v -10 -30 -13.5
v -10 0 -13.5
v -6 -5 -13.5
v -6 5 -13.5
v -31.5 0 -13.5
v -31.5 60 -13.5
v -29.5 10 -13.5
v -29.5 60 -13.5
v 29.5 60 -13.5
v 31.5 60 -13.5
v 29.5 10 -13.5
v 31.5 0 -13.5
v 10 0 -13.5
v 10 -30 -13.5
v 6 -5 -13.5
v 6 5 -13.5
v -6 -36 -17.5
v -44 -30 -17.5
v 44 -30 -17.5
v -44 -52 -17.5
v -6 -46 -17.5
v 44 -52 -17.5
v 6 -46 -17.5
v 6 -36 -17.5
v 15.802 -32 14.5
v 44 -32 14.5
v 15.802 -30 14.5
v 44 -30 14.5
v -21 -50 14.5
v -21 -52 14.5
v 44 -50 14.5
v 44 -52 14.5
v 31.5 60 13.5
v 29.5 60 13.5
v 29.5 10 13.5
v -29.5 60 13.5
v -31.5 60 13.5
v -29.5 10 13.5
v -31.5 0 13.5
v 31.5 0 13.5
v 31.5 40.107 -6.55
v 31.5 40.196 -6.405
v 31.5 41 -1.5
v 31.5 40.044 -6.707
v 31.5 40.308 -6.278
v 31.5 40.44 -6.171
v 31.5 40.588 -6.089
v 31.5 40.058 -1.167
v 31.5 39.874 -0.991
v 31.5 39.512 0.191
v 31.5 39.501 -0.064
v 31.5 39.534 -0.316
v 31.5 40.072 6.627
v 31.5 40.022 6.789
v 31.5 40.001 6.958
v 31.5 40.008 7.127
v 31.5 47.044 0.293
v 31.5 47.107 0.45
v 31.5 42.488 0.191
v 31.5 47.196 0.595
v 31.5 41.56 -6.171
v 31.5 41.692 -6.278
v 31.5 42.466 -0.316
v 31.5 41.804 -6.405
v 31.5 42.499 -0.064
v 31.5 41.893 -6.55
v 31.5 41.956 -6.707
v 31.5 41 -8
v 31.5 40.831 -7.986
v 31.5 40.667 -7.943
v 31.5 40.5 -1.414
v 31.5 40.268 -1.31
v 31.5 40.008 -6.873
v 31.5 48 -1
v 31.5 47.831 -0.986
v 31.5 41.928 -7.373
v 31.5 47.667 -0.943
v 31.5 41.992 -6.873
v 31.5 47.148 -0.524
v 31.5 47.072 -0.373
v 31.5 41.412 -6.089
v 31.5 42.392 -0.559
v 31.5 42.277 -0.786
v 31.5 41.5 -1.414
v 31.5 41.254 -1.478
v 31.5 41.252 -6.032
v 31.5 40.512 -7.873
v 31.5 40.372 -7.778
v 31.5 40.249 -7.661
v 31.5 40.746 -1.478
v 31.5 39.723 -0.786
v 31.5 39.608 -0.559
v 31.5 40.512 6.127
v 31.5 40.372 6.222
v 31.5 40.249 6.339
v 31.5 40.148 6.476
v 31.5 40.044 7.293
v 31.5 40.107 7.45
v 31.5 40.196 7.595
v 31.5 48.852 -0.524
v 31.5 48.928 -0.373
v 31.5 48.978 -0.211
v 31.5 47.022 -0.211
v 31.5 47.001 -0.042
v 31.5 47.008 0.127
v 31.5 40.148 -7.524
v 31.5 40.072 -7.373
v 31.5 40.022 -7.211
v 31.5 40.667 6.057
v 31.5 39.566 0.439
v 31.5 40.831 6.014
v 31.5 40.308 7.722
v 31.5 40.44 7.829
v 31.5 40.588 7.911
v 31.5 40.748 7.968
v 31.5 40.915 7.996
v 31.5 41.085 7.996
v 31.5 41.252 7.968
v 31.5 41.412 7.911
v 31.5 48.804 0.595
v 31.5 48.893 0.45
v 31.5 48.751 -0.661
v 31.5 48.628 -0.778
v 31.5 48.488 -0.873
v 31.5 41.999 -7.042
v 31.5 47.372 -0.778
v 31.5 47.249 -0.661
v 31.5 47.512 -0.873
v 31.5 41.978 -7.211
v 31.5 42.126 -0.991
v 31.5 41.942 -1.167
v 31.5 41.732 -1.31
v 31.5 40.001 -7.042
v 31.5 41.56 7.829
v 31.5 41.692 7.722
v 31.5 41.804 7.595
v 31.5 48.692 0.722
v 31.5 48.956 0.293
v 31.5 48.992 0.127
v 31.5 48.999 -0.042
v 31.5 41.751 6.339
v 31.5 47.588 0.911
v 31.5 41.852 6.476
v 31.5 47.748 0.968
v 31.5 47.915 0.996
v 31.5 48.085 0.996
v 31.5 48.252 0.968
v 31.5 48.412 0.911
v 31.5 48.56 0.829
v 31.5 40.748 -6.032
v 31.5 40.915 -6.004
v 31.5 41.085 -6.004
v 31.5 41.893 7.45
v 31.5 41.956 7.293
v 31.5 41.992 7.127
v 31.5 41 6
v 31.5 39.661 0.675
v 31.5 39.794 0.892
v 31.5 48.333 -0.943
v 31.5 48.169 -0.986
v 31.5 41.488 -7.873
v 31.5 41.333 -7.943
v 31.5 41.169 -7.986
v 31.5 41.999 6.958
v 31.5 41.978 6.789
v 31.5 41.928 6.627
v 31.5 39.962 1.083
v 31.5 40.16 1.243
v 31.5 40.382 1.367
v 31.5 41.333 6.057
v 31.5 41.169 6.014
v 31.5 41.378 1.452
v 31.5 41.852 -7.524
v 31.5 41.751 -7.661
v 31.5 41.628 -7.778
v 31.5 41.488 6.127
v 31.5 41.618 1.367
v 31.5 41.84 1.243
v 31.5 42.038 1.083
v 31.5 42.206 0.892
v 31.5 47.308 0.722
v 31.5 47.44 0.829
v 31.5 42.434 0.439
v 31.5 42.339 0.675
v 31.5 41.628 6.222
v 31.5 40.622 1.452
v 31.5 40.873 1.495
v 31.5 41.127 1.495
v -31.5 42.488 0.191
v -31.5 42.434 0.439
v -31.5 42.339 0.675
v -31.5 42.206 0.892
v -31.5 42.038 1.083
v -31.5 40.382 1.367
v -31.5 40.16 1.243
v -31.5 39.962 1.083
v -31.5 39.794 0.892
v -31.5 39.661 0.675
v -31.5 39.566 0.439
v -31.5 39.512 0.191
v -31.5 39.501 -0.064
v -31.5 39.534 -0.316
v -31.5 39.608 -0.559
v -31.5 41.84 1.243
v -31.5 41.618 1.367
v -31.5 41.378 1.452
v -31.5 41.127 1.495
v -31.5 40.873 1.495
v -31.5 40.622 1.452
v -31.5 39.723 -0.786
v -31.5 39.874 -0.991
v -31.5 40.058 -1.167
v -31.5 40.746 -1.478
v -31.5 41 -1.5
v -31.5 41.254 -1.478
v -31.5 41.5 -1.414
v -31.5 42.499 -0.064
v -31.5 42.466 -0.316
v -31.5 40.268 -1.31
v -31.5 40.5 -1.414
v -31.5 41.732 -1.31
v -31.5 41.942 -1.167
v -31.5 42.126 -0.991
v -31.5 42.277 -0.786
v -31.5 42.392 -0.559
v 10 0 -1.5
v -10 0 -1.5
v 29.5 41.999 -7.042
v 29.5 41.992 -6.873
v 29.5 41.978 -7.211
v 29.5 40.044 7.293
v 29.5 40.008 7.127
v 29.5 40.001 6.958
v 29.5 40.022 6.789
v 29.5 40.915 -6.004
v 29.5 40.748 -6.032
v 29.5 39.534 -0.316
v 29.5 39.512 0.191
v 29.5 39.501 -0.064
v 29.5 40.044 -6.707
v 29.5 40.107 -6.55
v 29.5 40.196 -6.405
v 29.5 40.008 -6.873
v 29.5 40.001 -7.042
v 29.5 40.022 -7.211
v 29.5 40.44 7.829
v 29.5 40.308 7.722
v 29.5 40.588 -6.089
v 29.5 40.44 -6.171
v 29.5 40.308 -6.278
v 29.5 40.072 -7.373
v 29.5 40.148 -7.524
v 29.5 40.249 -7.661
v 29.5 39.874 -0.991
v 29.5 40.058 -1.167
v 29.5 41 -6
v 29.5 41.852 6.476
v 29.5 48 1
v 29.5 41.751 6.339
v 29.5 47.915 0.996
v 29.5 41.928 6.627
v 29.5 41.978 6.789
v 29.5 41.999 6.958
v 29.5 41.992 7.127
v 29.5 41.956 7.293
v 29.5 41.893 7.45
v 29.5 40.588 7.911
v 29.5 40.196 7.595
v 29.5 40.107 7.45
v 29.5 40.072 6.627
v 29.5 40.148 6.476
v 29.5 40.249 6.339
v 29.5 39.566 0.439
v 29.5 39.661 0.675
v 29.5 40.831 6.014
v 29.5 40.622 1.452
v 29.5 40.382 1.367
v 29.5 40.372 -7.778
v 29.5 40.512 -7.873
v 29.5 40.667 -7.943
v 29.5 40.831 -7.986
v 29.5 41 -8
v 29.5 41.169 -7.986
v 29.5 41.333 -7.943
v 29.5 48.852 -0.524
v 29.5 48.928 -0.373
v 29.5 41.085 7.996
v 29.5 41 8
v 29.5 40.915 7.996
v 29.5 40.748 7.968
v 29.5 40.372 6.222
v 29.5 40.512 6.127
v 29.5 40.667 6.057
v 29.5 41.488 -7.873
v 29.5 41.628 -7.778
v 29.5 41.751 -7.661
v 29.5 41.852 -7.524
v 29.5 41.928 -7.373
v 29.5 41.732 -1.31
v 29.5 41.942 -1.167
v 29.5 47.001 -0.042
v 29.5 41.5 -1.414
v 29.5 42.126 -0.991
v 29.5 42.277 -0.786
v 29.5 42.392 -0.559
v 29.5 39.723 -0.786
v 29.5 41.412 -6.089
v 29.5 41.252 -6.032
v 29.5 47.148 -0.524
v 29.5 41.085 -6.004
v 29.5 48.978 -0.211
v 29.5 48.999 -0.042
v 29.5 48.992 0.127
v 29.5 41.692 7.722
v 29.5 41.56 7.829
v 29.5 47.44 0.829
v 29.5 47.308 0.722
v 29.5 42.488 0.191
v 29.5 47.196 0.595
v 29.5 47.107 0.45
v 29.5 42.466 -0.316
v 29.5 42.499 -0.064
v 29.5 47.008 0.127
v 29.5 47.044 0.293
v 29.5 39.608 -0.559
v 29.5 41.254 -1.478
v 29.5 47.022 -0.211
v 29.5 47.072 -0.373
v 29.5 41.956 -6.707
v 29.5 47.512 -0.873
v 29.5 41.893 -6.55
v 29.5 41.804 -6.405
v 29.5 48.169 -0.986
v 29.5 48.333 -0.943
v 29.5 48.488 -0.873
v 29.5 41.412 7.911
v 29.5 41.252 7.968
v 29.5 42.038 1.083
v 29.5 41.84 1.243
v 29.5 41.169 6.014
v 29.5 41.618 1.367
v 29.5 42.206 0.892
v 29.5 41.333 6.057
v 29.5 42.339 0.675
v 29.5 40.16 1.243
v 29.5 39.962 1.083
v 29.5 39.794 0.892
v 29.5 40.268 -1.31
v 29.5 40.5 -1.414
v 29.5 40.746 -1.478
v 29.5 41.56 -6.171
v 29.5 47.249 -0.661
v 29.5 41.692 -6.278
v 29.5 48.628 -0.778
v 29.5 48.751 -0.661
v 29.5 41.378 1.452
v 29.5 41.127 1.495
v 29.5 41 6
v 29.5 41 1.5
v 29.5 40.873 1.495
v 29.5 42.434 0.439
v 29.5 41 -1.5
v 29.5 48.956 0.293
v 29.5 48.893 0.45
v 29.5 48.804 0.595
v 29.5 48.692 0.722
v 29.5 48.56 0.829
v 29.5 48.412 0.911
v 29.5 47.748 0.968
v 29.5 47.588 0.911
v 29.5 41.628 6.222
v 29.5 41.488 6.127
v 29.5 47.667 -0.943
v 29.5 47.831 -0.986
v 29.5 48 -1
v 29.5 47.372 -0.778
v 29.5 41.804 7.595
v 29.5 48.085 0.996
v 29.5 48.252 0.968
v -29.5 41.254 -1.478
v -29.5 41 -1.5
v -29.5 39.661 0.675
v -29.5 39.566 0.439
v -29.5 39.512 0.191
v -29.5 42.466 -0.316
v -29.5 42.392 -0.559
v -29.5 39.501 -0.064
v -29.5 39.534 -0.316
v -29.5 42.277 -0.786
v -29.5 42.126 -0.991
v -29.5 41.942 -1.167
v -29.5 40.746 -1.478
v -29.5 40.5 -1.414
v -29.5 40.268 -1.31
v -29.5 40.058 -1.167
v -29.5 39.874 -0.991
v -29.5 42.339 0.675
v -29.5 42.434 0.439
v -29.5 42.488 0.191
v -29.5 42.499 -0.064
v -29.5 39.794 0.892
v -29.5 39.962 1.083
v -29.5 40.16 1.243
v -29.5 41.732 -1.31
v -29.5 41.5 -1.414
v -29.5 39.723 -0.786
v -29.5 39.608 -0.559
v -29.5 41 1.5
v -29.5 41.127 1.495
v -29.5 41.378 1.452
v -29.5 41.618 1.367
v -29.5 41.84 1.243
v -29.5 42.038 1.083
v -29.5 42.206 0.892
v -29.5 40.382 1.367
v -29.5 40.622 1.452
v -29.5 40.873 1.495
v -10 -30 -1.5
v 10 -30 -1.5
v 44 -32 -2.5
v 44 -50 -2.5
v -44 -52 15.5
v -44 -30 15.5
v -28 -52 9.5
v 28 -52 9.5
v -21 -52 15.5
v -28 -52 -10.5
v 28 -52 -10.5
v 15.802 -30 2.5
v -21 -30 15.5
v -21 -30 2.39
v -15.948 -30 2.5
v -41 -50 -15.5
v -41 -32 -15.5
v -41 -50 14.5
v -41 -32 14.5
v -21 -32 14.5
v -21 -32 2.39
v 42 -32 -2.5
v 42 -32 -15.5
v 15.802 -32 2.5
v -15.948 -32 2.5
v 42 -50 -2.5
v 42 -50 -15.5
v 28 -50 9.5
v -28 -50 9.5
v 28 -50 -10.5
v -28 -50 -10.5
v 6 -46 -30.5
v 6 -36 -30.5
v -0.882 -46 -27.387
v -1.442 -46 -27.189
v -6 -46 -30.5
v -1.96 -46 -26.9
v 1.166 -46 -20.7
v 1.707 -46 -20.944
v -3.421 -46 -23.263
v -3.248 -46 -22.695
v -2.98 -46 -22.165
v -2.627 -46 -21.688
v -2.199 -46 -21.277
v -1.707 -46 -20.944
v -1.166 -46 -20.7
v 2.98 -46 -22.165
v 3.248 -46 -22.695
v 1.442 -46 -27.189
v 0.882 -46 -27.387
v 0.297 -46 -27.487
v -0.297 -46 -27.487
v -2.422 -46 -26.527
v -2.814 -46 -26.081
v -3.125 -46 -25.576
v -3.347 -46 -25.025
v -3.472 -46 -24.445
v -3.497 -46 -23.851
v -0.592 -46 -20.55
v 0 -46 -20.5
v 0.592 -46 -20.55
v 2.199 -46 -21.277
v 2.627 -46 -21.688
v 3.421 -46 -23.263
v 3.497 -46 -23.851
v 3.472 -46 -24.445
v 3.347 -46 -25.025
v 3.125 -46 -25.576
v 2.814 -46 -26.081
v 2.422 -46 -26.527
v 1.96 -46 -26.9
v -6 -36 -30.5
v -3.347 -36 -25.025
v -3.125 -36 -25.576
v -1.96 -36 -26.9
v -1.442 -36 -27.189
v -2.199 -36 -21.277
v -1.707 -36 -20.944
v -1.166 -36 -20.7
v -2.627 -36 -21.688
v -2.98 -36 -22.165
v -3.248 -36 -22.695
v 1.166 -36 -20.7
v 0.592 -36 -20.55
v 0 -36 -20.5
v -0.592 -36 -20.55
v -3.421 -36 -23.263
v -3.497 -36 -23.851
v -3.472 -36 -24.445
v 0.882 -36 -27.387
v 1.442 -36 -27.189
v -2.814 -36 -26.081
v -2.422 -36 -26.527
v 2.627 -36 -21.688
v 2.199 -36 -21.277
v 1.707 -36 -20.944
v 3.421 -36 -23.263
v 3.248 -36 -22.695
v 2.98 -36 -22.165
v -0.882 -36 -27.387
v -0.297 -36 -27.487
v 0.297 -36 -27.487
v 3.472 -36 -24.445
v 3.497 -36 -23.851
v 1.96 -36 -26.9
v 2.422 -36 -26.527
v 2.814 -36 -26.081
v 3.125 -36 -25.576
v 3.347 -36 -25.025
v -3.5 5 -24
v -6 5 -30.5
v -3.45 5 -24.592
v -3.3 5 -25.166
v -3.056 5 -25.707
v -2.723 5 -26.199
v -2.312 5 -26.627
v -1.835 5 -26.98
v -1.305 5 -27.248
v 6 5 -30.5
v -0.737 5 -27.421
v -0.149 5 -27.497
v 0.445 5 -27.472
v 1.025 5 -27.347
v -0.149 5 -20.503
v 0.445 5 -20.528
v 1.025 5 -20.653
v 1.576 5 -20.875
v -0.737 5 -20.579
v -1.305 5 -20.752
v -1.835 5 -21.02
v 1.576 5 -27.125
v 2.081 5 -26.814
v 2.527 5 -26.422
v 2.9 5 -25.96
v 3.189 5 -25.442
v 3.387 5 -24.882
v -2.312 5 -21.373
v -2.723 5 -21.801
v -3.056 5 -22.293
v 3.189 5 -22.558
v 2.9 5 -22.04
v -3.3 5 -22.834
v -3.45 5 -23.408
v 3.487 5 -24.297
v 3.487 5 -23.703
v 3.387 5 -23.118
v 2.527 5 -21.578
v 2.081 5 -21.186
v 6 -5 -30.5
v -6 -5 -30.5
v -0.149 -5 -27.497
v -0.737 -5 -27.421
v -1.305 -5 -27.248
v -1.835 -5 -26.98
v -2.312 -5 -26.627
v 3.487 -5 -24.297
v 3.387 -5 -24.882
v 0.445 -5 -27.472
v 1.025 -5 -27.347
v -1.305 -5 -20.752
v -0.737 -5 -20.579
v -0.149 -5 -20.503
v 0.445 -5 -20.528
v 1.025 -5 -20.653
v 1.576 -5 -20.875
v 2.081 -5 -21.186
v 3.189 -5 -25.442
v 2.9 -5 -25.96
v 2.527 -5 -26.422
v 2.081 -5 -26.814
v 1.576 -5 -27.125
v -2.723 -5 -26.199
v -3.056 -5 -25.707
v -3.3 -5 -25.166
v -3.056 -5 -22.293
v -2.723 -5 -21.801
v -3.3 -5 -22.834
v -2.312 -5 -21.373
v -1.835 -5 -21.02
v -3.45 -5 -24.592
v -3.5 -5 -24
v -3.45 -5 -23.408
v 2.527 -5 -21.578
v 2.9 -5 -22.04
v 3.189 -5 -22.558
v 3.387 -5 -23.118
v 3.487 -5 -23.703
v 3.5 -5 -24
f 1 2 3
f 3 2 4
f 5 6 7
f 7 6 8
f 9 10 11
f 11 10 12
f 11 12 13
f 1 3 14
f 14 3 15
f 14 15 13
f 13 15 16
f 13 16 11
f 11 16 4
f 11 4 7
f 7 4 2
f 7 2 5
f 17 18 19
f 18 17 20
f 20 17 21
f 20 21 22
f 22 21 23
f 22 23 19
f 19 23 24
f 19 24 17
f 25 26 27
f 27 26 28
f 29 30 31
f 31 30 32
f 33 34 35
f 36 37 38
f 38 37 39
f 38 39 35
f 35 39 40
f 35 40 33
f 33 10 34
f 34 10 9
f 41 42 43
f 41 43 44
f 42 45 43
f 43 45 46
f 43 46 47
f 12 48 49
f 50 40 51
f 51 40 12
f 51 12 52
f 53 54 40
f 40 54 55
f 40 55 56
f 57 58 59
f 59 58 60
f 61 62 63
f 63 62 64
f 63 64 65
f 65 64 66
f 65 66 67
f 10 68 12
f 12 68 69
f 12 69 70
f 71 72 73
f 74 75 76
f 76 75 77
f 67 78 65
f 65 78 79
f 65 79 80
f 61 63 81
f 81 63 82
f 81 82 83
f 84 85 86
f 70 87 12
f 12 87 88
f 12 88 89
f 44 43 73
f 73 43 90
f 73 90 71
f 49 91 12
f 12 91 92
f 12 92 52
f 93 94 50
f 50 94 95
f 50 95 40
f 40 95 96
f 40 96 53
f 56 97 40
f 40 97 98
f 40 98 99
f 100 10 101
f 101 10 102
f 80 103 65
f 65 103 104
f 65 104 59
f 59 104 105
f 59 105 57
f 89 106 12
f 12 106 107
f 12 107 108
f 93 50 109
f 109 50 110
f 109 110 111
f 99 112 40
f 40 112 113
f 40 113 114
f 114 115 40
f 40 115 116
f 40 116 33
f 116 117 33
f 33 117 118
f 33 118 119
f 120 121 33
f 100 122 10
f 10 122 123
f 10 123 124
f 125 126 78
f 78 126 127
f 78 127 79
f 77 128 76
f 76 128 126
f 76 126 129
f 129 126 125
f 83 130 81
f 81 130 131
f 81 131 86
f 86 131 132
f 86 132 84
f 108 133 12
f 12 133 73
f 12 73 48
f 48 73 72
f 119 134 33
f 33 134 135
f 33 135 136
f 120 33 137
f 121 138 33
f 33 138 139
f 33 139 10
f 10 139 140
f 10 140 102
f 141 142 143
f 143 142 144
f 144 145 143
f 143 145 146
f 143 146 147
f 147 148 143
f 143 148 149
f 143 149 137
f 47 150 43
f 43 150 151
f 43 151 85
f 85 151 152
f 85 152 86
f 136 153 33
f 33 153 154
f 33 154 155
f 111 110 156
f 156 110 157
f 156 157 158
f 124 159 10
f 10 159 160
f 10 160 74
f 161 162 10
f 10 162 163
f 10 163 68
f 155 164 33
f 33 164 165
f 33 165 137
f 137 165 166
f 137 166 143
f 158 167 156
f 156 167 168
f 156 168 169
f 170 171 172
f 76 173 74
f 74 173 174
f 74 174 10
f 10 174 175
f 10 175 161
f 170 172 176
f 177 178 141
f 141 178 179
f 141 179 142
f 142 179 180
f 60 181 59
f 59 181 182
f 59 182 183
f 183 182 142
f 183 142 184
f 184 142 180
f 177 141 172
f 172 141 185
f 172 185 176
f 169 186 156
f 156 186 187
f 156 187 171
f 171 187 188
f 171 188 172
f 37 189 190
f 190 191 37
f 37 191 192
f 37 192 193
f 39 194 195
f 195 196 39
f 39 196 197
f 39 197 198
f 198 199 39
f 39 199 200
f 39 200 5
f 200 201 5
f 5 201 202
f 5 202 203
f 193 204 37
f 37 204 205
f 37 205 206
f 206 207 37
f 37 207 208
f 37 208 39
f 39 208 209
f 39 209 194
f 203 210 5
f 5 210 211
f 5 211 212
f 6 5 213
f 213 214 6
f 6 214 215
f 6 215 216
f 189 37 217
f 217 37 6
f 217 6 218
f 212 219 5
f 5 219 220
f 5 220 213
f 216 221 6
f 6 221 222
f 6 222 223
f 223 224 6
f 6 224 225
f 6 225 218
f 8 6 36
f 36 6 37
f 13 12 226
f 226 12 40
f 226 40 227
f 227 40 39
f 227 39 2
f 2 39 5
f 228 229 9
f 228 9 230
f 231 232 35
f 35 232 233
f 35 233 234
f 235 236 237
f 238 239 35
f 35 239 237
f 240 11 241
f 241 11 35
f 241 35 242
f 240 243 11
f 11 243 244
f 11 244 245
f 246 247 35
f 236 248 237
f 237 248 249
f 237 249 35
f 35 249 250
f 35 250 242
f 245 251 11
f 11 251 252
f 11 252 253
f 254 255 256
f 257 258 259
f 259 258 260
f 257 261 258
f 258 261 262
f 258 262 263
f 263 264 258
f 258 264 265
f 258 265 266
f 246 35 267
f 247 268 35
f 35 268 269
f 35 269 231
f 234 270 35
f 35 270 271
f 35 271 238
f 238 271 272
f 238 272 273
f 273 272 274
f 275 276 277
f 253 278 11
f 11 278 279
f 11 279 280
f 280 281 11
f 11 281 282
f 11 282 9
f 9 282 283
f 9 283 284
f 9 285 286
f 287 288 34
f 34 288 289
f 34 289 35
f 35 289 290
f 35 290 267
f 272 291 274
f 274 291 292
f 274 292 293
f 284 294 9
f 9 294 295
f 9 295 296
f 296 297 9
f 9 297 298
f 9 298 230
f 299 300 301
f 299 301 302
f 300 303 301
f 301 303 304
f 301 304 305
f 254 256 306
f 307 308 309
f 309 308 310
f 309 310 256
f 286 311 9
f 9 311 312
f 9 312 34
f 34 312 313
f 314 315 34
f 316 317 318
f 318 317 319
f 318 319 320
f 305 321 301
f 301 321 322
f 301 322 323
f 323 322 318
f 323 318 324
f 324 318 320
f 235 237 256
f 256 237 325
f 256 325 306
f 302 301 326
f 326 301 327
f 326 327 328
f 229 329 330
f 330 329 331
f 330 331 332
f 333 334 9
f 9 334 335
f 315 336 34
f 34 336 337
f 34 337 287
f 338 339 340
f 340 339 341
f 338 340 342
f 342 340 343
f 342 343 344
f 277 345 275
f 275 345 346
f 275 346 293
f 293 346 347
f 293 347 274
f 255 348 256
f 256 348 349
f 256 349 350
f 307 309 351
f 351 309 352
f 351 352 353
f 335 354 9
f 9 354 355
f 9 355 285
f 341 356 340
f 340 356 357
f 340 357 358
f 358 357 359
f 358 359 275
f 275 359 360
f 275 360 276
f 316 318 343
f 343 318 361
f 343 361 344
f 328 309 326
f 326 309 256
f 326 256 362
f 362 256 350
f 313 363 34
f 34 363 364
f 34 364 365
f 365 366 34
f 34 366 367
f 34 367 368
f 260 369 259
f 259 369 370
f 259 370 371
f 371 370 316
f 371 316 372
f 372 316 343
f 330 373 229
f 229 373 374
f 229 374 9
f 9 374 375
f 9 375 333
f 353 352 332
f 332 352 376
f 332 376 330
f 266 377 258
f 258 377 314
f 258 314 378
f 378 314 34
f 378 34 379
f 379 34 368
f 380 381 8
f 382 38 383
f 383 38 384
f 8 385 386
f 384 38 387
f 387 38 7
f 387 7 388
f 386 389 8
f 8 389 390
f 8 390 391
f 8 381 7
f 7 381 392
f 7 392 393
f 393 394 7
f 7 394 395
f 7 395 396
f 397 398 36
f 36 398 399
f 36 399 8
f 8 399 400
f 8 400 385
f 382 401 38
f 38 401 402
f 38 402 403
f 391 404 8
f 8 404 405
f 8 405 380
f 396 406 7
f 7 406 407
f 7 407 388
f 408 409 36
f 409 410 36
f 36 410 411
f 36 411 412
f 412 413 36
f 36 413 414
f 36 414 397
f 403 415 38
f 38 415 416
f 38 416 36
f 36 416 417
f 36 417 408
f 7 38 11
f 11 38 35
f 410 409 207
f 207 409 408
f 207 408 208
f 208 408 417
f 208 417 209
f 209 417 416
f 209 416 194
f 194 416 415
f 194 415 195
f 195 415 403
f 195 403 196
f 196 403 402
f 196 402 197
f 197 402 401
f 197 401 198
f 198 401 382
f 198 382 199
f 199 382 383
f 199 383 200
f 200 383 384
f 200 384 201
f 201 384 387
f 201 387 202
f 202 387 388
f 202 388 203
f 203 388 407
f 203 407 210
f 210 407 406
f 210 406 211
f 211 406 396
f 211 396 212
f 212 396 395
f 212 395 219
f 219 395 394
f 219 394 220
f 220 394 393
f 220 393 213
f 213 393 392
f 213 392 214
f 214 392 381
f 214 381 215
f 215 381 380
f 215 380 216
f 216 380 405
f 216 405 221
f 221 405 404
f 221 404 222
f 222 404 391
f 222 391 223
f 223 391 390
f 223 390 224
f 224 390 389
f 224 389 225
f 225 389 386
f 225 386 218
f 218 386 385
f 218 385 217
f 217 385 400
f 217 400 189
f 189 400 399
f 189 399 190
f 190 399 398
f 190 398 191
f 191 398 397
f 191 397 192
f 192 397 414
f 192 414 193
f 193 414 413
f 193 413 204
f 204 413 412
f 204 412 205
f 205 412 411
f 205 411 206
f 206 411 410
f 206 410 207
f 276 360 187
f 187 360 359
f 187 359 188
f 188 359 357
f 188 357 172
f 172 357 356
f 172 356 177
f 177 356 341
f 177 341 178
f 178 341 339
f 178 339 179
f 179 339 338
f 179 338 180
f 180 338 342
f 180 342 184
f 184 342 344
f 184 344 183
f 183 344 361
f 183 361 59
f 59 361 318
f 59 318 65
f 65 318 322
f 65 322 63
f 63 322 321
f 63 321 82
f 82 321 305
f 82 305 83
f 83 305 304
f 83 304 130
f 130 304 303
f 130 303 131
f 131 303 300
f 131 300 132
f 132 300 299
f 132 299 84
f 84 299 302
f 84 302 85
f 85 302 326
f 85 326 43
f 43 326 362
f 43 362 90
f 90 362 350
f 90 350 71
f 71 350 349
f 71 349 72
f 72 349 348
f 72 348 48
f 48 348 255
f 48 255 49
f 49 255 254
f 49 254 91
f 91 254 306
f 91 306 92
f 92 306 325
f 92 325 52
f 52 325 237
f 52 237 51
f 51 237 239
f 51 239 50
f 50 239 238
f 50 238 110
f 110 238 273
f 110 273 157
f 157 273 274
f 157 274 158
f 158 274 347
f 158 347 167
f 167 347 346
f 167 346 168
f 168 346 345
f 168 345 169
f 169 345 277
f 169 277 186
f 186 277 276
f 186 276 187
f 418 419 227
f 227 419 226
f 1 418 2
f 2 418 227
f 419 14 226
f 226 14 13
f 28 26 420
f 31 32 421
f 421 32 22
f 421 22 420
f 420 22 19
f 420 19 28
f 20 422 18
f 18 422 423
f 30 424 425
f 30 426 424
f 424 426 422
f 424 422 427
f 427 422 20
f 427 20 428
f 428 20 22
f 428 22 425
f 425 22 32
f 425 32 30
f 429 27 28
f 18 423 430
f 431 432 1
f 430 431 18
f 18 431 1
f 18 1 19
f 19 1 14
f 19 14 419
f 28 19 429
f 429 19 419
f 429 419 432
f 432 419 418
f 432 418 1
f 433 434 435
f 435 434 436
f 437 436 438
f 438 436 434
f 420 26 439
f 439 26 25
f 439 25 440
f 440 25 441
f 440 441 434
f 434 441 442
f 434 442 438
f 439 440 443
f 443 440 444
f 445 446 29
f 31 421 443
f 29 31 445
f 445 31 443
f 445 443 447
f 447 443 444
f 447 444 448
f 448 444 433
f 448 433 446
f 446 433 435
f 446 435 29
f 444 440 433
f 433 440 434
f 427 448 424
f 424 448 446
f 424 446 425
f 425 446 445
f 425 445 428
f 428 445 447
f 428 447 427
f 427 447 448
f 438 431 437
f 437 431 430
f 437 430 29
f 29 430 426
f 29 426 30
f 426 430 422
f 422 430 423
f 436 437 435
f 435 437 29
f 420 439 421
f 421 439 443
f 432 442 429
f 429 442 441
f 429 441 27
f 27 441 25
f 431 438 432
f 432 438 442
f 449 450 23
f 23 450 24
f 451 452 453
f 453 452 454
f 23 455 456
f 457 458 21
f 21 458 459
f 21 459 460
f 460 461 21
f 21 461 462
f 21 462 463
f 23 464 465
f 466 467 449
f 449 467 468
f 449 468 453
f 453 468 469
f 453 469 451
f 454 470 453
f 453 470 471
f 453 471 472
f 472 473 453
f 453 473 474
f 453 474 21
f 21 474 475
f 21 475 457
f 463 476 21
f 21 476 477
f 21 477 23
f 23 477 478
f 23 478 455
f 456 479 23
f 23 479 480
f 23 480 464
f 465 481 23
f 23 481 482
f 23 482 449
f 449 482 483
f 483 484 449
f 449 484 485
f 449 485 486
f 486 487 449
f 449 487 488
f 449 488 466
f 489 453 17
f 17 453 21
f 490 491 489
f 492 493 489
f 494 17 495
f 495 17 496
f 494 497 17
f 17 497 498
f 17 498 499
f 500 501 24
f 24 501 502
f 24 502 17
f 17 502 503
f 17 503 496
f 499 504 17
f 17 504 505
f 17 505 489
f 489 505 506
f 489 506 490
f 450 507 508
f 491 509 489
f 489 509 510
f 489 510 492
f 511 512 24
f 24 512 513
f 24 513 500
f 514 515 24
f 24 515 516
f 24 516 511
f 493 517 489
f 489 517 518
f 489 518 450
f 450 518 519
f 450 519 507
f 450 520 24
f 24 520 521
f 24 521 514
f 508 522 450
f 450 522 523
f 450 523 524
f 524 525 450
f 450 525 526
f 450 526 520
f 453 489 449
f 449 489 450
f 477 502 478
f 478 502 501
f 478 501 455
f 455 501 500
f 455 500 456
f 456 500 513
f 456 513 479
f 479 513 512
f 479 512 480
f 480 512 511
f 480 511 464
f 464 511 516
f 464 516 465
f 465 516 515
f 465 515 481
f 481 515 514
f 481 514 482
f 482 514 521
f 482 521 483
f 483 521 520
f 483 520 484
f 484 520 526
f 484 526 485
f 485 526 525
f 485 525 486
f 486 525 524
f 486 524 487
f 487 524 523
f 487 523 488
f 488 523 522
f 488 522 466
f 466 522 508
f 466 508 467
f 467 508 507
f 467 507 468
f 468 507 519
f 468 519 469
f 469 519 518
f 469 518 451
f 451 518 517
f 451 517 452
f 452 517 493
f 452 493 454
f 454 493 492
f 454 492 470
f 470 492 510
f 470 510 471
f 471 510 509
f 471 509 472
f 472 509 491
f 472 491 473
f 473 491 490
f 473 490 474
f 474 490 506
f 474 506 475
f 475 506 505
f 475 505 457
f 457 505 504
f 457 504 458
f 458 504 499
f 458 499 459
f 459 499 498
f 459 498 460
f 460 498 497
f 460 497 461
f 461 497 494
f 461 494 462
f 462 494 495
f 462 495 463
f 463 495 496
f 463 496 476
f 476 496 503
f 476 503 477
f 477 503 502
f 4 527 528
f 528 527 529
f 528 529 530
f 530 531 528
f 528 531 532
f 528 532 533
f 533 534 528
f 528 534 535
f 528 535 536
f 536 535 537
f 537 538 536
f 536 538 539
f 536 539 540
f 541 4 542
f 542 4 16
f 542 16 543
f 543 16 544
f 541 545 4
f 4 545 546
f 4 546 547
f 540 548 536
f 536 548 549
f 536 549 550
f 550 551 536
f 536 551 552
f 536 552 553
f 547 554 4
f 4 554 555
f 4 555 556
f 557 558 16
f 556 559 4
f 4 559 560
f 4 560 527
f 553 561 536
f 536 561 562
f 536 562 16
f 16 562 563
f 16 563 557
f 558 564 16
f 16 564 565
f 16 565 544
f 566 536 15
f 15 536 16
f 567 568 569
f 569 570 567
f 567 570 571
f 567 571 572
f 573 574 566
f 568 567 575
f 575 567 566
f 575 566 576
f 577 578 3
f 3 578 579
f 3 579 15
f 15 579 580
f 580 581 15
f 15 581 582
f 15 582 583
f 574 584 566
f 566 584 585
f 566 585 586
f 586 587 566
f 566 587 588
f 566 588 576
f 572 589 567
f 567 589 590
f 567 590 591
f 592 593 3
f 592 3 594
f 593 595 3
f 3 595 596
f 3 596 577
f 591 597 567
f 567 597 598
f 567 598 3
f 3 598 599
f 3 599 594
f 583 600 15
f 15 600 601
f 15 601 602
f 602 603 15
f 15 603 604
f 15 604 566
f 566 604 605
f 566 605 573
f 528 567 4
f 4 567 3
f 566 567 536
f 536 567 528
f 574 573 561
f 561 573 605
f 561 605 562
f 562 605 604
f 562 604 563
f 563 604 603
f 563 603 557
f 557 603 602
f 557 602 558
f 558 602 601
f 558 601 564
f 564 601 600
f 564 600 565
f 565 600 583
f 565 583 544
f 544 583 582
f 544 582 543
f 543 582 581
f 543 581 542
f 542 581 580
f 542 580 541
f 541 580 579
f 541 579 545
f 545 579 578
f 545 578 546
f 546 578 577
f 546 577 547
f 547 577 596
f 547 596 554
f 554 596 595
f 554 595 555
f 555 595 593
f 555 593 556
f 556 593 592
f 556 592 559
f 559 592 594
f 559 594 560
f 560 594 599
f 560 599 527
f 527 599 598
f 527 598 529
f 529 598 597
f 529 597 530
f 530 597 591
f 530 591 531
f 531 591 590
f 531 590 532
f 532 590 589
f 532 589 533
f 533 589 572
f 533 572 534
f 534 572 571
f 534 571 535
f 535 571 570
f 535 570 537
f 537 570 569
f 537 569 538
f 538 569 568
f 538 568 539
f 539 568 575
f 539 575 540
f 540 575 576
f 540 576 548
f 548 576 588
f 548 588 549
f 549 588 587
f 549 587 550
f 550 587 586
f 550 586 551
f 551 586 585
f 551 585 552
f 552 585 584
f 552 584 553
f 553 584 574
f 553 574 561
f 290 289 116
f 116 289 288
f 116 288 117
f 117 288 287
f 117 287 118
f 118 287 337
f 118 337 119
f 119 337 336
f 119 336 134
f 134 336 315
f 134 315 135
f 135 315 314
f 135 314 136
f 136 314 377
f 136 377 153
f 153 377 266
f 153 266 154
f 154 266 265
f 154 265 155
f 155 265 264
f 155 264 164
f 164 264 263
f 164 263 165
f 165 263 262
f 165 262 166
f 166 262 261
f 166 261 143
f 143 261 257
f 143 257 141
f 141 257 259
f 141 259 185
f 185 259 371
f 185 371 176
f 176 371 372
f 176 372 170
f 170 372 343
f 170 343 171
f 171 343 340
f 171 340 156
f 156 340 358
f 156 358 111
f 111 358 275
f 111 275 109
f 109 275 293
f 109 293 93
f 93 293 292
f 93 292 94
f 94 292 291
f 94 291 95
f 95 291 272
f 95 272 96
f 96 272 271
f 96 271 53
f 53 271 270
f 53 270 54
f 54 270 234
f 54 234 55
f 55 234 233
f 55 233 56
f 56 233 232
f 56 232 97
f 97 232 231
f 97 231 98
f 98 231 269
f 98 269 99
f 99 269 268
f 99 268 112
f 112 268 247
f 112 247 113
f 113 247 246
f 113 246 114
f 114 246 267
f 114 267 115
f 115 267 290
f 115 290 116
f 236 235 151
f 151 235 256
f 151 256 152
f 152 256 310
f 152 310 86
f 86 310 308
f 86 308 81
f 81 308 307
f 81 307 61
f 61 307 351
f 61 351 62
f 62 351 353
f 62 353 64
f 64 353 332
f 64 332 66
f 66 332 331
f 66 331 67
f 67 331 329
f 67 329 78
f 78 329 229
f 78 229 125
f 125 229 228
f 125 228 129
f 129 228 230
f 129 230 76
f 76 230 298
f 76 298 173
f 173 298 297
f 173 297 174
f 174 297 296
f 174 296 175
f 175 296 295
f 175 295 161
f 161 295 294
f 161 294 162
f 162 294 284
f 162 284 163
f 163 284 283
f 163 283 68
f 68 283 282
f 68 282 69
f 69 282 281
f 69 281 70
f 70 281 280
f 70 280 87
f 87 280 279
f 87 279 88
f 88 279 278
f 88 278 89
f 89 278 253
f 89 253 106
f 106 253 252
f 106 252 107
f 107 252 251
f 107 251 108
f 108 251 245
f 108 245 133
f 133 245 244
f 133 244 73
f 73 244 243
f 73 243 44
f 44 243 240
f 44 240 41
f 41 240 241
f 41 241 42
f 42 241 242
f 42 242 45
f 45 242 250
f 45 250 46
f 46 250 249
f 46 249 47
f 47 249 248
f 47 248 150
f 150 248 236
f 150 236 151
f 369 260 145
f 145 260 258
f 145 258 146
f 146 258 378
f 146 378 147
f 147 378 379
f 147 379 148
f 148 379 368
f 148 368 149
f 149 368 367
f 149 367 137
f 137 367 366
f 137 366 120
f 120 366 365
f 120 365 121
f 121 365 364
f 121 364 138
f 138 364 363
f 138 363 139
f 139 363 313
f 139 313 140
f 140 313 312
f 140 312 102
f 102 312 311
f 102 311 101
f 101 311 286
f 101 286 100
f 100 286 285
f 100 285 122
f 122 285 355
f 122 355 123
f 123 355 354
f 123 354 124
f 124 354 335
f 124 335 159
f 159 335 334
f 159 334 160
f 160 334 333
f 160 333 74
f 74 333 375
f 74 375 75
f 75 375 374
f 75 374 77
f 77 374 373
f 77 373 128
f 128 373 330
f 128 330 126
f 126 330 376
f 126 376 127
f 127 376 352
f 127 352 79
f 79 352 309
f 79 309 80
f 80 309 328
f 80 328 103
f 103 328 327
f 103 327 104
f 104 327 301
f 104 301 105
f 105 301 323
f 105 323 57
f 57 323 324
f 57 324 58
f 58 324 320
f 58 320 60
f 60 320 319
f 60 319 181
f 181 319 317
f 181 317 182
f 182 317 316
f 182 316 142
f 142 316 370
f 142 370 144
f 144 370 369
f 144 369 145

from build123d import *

# Parameters (mm, degrees)
SKETCH1_W           = 63
SKETCH1_H           = 27
BOSS_EXTRUDE1_DEPTH = 60
SKETCH2_W           = 59
SKETCH2_H           = 27
CUT_EXTRUDE1_DEPTH  = 50
SKETCH3_R           = 1.5
CUT_EXTRUDE2_DEPTH  = 65
SKETCH5_W           = 20
SKETCH5_H           = 12
BOSS_EXTRUDE2_DEPTH = 30
SKETCH6_W           = 88
SKETCH6_H           = 32
BOSS_EXTRUDE3_DEPTH = 22
SKETCH7_W           = 83
SKETCH7_H           = 18
CUT_EXTRUDE3_DEPTH  = 30
SKETCH10_W          = 56
SKETCH10_H          = 20
CUT_EXTRUDE5_DEPTH  = 3
SKETCH11_W          = 23
SKETCH11_H          = 22
BOSS_EXTRUDE4_DEPTH = 1
SKETCH12_W          = 17
SKETCH12_H          = 18
CUT_EXTRUDE7_DEPTH  = 2.5
SKETCH13_W          = 31.74972829
SKETCH13_H          = 12
CUT_EXTRUDE9_DEPTH  = 2.5
CUT_EXTRUDE10_DEPTH = 2.5
SKETCH23_W          = 12
SKETCH23_H          = 10
BOSS_EXTRUDE7_DEPTH = 13
SKETCH25_R          = 3.5
CUT_EXTRUDE13_DEPTH = 13
SKETCH26_W          = 12
SKETCH26_H          = 10
BOSS_EXTRUDE8_DEPTH = 17
SKETCH27_R          = 3.5
CUT_EXTRUDE14_DEPTH = 17
SKETCH28_R          = 1
CUT_EXTRUDE15_DEPTH = 10


with BuildPart() as part:
    # Sketch1 → Boss-Extrude1 (new body)
    with BuildSketch(Plane(origin=(0, 0, 0), x_dir=(1, 0, 0), z_dir=(0, 1, 0))):
        Rectangle(SKETCH1_W, SKETCH1_H)
    extrude(amount=BOSS_EXTRUDE1_DEPTH)

    # Sketch2 → Cut-Extrude1 (cut)
    with BuildSketch(Plane(origin=(0, 60, 0), x_dir=(1, 0, 0), z_dir=(0, 1, 0))):
        Rectangle(SKETCH2_W, SKETCH2_H)
    extrude(amount=-CUT_EXTRUDE1_DEPTH, mode=Mode.SUBTRACT)

    # Sketch3 → Cut-Extrude2 (cut)
    with BuildSketch(Plane(origin=(31.5, 0, 0), x_dir=(0, 0, -1), z_dir=(1, 0, 0))):
        with Locations((0, 41)):
            Circle(SKETCH3_R)
    extrude(amount=-CUT_EXTRUDE2_DEPTH, mode=Mode.SUBTRACT)

    # Sketch5 → Boss-Extrude2 (add)
    with BuildSketch(Plane.XZ):
        with Locations((0, -7.5)):
            Rectangle(SKETCH5_W, SKETCH5_H)
    extrude(amount=BOSS_EXTRUDE2_DEPTH)

    # Sketch6 → Boss-Extrude3 (add)
    with BuildSketch(Plane.XZ.offset(30)):
        with Locations((0, -1.5)):
            Rectangle(SKETCH6_W, SKETCH6_H)
    extrude(amount=BOSS_EXTRUDE3_DEPTH)

    # Sketch7 → Cut-Extrude3 (cut)
    with BuildSketch(Plane.XY.offset(14.5)):
        with Locations((0.5, -41)):
            Rectangle(SKETCH7_W, SKETCH7_H)
    extrude(amount=-CUT_EXTRUDE3_DEPTH, mode=Mode.SUBTRACT)

    # Sketch10 → Cut-Extrude5 (cut)
    with BuildSketch(Plane.XZ.offset(52)):
        with Locations((0, -0.5)):
            Rectangle(SKETCH10_W, SKETCH10_H)
    extrude(amount=-CUT_EXTRUDE5_DEPTH, mode=Mode.SUBTRACT)

    # Sketch11 → Boss-Extrude4 (add)
    with BuildSketch(Plane.XY.offset(14.5)):
        with Locations((-32.5, -41)):
            Rectangle(SKETCH11_W, SKETCH11_H)
    extrude(amount=BOSS_EXTRUDE4_DEPTH)

    # Sketch12 → Cut-Extrude7 (cut)
    with BuildSketch(Plane(origin=(44, 0, 0), x_dir=(0, 0, -1), z_dir=(1, 0, 0))):
        with Locations((-6, -41)):
            Rectangle(SKETCH12_W, SKETCH12_H)
    extrude(amount=-CUT_EXTRUDE7_DEPTH, mode=Mode.SUBTRACT)

    # Sketch13 → Cut-Extrude9 (cut)
    with BuildSketch(Plane(origin=(0, -30, 0), x_dir=(1, 0, 0), z_dir=(0, 1, 0))):
        with Locations((-0.07313141, -8.5)):
            Rectangle(SKETCH13_W, SKETCH13_H)
    extrude(amount=-CUT_EXTRUDE9_DEPTH, mode=Mode.SUBTRACT)

    # Sketch16 → Cut-Extrude10 (cut)
    with BuildSketch(Plane(origin=(0, -30, 0), x_dir=(1, 0, 0), z_dir=(0, 1, 0))):
        Polygon((-21, -14.5), (-21, -2.38991446), (-15.947995555, -2.5), (-15.947995555, -14.5), align=None)
    extrude(amount=-CUT_EXTRUDE10_DEPTH, mode=Mode.SUBTRACT)

    # Sketch23 → Boss-Extrude7 (add)
    with BuildSketch(Plane(origin=(0, 0, -17.5), x_dir=(-1, 0, 0), z_dir=(0, 0, -1))):
        with Locations((0, -41)):
            Rectangle(SKETCH23_W, SKETCH23_H)
    extrude(amount=BOSS_EXTRUDE7_DEPTH)

    # Sketch25 → Cut-Extrude13 (cut)
    with BuildSketch(Plane(origin=(0, -36, 0), x_dir=(1, 0, 0), z_dir=(0, 1, 0))):
        with Locations(Location((0, 24, 0), (0, 0, 270))):
            Circle(SKETCH25_R)
    extrude(amount=-CUT_EXTRUDE13_DEPTH, mode=Mode.SUBTRACT)

    # Sketch26 → Boss-Extrude8 (add)
    with BuildSketch(Plane(origin=(0, 0, -13.5), x_dir=(-1, 0, 0), z_dir=(0, 0, -1))):
        Rectangle(SKETCH26_W, SKETCH26_H)
    extrude(amount=BOSS_EXTRUDE8_DEPTH)

    # Sketch27 → Cut-Extrude14 (cut)
    with BuildSketch(Plane(origin=(0, 5, 0), x_dir=(1, 0, 0), z_dir=(0, 1, 0))):
        with Locations(Location((0, 24, 0), (0, 0, 270))):
            Circle(SKETCH27_R)
    extrude(amount=-CUT_EXTRUDE14_DEPTH, mode=Mode.SUBTRACT)

    # Sketch28 → Cut-Extrude15 (cut)
    with BuildSketch(Plane(origin=(31.5, 0, 0), x_dir=(0, 0, -1), z_dir=(1, 0, 0))):
        with Locations((0, 48)):
            Circle(SKETCH28_R)
        with Locations((7, 41)):
            Circle(SKETCH28_R)
        with Locations((-7, 41)):
            Circle(SKETCH28_R)
    extrude(amount=-CUT_EXTRUDE15_DEPTH, mode=Mode.SUBTRACT)


solid = part.part
